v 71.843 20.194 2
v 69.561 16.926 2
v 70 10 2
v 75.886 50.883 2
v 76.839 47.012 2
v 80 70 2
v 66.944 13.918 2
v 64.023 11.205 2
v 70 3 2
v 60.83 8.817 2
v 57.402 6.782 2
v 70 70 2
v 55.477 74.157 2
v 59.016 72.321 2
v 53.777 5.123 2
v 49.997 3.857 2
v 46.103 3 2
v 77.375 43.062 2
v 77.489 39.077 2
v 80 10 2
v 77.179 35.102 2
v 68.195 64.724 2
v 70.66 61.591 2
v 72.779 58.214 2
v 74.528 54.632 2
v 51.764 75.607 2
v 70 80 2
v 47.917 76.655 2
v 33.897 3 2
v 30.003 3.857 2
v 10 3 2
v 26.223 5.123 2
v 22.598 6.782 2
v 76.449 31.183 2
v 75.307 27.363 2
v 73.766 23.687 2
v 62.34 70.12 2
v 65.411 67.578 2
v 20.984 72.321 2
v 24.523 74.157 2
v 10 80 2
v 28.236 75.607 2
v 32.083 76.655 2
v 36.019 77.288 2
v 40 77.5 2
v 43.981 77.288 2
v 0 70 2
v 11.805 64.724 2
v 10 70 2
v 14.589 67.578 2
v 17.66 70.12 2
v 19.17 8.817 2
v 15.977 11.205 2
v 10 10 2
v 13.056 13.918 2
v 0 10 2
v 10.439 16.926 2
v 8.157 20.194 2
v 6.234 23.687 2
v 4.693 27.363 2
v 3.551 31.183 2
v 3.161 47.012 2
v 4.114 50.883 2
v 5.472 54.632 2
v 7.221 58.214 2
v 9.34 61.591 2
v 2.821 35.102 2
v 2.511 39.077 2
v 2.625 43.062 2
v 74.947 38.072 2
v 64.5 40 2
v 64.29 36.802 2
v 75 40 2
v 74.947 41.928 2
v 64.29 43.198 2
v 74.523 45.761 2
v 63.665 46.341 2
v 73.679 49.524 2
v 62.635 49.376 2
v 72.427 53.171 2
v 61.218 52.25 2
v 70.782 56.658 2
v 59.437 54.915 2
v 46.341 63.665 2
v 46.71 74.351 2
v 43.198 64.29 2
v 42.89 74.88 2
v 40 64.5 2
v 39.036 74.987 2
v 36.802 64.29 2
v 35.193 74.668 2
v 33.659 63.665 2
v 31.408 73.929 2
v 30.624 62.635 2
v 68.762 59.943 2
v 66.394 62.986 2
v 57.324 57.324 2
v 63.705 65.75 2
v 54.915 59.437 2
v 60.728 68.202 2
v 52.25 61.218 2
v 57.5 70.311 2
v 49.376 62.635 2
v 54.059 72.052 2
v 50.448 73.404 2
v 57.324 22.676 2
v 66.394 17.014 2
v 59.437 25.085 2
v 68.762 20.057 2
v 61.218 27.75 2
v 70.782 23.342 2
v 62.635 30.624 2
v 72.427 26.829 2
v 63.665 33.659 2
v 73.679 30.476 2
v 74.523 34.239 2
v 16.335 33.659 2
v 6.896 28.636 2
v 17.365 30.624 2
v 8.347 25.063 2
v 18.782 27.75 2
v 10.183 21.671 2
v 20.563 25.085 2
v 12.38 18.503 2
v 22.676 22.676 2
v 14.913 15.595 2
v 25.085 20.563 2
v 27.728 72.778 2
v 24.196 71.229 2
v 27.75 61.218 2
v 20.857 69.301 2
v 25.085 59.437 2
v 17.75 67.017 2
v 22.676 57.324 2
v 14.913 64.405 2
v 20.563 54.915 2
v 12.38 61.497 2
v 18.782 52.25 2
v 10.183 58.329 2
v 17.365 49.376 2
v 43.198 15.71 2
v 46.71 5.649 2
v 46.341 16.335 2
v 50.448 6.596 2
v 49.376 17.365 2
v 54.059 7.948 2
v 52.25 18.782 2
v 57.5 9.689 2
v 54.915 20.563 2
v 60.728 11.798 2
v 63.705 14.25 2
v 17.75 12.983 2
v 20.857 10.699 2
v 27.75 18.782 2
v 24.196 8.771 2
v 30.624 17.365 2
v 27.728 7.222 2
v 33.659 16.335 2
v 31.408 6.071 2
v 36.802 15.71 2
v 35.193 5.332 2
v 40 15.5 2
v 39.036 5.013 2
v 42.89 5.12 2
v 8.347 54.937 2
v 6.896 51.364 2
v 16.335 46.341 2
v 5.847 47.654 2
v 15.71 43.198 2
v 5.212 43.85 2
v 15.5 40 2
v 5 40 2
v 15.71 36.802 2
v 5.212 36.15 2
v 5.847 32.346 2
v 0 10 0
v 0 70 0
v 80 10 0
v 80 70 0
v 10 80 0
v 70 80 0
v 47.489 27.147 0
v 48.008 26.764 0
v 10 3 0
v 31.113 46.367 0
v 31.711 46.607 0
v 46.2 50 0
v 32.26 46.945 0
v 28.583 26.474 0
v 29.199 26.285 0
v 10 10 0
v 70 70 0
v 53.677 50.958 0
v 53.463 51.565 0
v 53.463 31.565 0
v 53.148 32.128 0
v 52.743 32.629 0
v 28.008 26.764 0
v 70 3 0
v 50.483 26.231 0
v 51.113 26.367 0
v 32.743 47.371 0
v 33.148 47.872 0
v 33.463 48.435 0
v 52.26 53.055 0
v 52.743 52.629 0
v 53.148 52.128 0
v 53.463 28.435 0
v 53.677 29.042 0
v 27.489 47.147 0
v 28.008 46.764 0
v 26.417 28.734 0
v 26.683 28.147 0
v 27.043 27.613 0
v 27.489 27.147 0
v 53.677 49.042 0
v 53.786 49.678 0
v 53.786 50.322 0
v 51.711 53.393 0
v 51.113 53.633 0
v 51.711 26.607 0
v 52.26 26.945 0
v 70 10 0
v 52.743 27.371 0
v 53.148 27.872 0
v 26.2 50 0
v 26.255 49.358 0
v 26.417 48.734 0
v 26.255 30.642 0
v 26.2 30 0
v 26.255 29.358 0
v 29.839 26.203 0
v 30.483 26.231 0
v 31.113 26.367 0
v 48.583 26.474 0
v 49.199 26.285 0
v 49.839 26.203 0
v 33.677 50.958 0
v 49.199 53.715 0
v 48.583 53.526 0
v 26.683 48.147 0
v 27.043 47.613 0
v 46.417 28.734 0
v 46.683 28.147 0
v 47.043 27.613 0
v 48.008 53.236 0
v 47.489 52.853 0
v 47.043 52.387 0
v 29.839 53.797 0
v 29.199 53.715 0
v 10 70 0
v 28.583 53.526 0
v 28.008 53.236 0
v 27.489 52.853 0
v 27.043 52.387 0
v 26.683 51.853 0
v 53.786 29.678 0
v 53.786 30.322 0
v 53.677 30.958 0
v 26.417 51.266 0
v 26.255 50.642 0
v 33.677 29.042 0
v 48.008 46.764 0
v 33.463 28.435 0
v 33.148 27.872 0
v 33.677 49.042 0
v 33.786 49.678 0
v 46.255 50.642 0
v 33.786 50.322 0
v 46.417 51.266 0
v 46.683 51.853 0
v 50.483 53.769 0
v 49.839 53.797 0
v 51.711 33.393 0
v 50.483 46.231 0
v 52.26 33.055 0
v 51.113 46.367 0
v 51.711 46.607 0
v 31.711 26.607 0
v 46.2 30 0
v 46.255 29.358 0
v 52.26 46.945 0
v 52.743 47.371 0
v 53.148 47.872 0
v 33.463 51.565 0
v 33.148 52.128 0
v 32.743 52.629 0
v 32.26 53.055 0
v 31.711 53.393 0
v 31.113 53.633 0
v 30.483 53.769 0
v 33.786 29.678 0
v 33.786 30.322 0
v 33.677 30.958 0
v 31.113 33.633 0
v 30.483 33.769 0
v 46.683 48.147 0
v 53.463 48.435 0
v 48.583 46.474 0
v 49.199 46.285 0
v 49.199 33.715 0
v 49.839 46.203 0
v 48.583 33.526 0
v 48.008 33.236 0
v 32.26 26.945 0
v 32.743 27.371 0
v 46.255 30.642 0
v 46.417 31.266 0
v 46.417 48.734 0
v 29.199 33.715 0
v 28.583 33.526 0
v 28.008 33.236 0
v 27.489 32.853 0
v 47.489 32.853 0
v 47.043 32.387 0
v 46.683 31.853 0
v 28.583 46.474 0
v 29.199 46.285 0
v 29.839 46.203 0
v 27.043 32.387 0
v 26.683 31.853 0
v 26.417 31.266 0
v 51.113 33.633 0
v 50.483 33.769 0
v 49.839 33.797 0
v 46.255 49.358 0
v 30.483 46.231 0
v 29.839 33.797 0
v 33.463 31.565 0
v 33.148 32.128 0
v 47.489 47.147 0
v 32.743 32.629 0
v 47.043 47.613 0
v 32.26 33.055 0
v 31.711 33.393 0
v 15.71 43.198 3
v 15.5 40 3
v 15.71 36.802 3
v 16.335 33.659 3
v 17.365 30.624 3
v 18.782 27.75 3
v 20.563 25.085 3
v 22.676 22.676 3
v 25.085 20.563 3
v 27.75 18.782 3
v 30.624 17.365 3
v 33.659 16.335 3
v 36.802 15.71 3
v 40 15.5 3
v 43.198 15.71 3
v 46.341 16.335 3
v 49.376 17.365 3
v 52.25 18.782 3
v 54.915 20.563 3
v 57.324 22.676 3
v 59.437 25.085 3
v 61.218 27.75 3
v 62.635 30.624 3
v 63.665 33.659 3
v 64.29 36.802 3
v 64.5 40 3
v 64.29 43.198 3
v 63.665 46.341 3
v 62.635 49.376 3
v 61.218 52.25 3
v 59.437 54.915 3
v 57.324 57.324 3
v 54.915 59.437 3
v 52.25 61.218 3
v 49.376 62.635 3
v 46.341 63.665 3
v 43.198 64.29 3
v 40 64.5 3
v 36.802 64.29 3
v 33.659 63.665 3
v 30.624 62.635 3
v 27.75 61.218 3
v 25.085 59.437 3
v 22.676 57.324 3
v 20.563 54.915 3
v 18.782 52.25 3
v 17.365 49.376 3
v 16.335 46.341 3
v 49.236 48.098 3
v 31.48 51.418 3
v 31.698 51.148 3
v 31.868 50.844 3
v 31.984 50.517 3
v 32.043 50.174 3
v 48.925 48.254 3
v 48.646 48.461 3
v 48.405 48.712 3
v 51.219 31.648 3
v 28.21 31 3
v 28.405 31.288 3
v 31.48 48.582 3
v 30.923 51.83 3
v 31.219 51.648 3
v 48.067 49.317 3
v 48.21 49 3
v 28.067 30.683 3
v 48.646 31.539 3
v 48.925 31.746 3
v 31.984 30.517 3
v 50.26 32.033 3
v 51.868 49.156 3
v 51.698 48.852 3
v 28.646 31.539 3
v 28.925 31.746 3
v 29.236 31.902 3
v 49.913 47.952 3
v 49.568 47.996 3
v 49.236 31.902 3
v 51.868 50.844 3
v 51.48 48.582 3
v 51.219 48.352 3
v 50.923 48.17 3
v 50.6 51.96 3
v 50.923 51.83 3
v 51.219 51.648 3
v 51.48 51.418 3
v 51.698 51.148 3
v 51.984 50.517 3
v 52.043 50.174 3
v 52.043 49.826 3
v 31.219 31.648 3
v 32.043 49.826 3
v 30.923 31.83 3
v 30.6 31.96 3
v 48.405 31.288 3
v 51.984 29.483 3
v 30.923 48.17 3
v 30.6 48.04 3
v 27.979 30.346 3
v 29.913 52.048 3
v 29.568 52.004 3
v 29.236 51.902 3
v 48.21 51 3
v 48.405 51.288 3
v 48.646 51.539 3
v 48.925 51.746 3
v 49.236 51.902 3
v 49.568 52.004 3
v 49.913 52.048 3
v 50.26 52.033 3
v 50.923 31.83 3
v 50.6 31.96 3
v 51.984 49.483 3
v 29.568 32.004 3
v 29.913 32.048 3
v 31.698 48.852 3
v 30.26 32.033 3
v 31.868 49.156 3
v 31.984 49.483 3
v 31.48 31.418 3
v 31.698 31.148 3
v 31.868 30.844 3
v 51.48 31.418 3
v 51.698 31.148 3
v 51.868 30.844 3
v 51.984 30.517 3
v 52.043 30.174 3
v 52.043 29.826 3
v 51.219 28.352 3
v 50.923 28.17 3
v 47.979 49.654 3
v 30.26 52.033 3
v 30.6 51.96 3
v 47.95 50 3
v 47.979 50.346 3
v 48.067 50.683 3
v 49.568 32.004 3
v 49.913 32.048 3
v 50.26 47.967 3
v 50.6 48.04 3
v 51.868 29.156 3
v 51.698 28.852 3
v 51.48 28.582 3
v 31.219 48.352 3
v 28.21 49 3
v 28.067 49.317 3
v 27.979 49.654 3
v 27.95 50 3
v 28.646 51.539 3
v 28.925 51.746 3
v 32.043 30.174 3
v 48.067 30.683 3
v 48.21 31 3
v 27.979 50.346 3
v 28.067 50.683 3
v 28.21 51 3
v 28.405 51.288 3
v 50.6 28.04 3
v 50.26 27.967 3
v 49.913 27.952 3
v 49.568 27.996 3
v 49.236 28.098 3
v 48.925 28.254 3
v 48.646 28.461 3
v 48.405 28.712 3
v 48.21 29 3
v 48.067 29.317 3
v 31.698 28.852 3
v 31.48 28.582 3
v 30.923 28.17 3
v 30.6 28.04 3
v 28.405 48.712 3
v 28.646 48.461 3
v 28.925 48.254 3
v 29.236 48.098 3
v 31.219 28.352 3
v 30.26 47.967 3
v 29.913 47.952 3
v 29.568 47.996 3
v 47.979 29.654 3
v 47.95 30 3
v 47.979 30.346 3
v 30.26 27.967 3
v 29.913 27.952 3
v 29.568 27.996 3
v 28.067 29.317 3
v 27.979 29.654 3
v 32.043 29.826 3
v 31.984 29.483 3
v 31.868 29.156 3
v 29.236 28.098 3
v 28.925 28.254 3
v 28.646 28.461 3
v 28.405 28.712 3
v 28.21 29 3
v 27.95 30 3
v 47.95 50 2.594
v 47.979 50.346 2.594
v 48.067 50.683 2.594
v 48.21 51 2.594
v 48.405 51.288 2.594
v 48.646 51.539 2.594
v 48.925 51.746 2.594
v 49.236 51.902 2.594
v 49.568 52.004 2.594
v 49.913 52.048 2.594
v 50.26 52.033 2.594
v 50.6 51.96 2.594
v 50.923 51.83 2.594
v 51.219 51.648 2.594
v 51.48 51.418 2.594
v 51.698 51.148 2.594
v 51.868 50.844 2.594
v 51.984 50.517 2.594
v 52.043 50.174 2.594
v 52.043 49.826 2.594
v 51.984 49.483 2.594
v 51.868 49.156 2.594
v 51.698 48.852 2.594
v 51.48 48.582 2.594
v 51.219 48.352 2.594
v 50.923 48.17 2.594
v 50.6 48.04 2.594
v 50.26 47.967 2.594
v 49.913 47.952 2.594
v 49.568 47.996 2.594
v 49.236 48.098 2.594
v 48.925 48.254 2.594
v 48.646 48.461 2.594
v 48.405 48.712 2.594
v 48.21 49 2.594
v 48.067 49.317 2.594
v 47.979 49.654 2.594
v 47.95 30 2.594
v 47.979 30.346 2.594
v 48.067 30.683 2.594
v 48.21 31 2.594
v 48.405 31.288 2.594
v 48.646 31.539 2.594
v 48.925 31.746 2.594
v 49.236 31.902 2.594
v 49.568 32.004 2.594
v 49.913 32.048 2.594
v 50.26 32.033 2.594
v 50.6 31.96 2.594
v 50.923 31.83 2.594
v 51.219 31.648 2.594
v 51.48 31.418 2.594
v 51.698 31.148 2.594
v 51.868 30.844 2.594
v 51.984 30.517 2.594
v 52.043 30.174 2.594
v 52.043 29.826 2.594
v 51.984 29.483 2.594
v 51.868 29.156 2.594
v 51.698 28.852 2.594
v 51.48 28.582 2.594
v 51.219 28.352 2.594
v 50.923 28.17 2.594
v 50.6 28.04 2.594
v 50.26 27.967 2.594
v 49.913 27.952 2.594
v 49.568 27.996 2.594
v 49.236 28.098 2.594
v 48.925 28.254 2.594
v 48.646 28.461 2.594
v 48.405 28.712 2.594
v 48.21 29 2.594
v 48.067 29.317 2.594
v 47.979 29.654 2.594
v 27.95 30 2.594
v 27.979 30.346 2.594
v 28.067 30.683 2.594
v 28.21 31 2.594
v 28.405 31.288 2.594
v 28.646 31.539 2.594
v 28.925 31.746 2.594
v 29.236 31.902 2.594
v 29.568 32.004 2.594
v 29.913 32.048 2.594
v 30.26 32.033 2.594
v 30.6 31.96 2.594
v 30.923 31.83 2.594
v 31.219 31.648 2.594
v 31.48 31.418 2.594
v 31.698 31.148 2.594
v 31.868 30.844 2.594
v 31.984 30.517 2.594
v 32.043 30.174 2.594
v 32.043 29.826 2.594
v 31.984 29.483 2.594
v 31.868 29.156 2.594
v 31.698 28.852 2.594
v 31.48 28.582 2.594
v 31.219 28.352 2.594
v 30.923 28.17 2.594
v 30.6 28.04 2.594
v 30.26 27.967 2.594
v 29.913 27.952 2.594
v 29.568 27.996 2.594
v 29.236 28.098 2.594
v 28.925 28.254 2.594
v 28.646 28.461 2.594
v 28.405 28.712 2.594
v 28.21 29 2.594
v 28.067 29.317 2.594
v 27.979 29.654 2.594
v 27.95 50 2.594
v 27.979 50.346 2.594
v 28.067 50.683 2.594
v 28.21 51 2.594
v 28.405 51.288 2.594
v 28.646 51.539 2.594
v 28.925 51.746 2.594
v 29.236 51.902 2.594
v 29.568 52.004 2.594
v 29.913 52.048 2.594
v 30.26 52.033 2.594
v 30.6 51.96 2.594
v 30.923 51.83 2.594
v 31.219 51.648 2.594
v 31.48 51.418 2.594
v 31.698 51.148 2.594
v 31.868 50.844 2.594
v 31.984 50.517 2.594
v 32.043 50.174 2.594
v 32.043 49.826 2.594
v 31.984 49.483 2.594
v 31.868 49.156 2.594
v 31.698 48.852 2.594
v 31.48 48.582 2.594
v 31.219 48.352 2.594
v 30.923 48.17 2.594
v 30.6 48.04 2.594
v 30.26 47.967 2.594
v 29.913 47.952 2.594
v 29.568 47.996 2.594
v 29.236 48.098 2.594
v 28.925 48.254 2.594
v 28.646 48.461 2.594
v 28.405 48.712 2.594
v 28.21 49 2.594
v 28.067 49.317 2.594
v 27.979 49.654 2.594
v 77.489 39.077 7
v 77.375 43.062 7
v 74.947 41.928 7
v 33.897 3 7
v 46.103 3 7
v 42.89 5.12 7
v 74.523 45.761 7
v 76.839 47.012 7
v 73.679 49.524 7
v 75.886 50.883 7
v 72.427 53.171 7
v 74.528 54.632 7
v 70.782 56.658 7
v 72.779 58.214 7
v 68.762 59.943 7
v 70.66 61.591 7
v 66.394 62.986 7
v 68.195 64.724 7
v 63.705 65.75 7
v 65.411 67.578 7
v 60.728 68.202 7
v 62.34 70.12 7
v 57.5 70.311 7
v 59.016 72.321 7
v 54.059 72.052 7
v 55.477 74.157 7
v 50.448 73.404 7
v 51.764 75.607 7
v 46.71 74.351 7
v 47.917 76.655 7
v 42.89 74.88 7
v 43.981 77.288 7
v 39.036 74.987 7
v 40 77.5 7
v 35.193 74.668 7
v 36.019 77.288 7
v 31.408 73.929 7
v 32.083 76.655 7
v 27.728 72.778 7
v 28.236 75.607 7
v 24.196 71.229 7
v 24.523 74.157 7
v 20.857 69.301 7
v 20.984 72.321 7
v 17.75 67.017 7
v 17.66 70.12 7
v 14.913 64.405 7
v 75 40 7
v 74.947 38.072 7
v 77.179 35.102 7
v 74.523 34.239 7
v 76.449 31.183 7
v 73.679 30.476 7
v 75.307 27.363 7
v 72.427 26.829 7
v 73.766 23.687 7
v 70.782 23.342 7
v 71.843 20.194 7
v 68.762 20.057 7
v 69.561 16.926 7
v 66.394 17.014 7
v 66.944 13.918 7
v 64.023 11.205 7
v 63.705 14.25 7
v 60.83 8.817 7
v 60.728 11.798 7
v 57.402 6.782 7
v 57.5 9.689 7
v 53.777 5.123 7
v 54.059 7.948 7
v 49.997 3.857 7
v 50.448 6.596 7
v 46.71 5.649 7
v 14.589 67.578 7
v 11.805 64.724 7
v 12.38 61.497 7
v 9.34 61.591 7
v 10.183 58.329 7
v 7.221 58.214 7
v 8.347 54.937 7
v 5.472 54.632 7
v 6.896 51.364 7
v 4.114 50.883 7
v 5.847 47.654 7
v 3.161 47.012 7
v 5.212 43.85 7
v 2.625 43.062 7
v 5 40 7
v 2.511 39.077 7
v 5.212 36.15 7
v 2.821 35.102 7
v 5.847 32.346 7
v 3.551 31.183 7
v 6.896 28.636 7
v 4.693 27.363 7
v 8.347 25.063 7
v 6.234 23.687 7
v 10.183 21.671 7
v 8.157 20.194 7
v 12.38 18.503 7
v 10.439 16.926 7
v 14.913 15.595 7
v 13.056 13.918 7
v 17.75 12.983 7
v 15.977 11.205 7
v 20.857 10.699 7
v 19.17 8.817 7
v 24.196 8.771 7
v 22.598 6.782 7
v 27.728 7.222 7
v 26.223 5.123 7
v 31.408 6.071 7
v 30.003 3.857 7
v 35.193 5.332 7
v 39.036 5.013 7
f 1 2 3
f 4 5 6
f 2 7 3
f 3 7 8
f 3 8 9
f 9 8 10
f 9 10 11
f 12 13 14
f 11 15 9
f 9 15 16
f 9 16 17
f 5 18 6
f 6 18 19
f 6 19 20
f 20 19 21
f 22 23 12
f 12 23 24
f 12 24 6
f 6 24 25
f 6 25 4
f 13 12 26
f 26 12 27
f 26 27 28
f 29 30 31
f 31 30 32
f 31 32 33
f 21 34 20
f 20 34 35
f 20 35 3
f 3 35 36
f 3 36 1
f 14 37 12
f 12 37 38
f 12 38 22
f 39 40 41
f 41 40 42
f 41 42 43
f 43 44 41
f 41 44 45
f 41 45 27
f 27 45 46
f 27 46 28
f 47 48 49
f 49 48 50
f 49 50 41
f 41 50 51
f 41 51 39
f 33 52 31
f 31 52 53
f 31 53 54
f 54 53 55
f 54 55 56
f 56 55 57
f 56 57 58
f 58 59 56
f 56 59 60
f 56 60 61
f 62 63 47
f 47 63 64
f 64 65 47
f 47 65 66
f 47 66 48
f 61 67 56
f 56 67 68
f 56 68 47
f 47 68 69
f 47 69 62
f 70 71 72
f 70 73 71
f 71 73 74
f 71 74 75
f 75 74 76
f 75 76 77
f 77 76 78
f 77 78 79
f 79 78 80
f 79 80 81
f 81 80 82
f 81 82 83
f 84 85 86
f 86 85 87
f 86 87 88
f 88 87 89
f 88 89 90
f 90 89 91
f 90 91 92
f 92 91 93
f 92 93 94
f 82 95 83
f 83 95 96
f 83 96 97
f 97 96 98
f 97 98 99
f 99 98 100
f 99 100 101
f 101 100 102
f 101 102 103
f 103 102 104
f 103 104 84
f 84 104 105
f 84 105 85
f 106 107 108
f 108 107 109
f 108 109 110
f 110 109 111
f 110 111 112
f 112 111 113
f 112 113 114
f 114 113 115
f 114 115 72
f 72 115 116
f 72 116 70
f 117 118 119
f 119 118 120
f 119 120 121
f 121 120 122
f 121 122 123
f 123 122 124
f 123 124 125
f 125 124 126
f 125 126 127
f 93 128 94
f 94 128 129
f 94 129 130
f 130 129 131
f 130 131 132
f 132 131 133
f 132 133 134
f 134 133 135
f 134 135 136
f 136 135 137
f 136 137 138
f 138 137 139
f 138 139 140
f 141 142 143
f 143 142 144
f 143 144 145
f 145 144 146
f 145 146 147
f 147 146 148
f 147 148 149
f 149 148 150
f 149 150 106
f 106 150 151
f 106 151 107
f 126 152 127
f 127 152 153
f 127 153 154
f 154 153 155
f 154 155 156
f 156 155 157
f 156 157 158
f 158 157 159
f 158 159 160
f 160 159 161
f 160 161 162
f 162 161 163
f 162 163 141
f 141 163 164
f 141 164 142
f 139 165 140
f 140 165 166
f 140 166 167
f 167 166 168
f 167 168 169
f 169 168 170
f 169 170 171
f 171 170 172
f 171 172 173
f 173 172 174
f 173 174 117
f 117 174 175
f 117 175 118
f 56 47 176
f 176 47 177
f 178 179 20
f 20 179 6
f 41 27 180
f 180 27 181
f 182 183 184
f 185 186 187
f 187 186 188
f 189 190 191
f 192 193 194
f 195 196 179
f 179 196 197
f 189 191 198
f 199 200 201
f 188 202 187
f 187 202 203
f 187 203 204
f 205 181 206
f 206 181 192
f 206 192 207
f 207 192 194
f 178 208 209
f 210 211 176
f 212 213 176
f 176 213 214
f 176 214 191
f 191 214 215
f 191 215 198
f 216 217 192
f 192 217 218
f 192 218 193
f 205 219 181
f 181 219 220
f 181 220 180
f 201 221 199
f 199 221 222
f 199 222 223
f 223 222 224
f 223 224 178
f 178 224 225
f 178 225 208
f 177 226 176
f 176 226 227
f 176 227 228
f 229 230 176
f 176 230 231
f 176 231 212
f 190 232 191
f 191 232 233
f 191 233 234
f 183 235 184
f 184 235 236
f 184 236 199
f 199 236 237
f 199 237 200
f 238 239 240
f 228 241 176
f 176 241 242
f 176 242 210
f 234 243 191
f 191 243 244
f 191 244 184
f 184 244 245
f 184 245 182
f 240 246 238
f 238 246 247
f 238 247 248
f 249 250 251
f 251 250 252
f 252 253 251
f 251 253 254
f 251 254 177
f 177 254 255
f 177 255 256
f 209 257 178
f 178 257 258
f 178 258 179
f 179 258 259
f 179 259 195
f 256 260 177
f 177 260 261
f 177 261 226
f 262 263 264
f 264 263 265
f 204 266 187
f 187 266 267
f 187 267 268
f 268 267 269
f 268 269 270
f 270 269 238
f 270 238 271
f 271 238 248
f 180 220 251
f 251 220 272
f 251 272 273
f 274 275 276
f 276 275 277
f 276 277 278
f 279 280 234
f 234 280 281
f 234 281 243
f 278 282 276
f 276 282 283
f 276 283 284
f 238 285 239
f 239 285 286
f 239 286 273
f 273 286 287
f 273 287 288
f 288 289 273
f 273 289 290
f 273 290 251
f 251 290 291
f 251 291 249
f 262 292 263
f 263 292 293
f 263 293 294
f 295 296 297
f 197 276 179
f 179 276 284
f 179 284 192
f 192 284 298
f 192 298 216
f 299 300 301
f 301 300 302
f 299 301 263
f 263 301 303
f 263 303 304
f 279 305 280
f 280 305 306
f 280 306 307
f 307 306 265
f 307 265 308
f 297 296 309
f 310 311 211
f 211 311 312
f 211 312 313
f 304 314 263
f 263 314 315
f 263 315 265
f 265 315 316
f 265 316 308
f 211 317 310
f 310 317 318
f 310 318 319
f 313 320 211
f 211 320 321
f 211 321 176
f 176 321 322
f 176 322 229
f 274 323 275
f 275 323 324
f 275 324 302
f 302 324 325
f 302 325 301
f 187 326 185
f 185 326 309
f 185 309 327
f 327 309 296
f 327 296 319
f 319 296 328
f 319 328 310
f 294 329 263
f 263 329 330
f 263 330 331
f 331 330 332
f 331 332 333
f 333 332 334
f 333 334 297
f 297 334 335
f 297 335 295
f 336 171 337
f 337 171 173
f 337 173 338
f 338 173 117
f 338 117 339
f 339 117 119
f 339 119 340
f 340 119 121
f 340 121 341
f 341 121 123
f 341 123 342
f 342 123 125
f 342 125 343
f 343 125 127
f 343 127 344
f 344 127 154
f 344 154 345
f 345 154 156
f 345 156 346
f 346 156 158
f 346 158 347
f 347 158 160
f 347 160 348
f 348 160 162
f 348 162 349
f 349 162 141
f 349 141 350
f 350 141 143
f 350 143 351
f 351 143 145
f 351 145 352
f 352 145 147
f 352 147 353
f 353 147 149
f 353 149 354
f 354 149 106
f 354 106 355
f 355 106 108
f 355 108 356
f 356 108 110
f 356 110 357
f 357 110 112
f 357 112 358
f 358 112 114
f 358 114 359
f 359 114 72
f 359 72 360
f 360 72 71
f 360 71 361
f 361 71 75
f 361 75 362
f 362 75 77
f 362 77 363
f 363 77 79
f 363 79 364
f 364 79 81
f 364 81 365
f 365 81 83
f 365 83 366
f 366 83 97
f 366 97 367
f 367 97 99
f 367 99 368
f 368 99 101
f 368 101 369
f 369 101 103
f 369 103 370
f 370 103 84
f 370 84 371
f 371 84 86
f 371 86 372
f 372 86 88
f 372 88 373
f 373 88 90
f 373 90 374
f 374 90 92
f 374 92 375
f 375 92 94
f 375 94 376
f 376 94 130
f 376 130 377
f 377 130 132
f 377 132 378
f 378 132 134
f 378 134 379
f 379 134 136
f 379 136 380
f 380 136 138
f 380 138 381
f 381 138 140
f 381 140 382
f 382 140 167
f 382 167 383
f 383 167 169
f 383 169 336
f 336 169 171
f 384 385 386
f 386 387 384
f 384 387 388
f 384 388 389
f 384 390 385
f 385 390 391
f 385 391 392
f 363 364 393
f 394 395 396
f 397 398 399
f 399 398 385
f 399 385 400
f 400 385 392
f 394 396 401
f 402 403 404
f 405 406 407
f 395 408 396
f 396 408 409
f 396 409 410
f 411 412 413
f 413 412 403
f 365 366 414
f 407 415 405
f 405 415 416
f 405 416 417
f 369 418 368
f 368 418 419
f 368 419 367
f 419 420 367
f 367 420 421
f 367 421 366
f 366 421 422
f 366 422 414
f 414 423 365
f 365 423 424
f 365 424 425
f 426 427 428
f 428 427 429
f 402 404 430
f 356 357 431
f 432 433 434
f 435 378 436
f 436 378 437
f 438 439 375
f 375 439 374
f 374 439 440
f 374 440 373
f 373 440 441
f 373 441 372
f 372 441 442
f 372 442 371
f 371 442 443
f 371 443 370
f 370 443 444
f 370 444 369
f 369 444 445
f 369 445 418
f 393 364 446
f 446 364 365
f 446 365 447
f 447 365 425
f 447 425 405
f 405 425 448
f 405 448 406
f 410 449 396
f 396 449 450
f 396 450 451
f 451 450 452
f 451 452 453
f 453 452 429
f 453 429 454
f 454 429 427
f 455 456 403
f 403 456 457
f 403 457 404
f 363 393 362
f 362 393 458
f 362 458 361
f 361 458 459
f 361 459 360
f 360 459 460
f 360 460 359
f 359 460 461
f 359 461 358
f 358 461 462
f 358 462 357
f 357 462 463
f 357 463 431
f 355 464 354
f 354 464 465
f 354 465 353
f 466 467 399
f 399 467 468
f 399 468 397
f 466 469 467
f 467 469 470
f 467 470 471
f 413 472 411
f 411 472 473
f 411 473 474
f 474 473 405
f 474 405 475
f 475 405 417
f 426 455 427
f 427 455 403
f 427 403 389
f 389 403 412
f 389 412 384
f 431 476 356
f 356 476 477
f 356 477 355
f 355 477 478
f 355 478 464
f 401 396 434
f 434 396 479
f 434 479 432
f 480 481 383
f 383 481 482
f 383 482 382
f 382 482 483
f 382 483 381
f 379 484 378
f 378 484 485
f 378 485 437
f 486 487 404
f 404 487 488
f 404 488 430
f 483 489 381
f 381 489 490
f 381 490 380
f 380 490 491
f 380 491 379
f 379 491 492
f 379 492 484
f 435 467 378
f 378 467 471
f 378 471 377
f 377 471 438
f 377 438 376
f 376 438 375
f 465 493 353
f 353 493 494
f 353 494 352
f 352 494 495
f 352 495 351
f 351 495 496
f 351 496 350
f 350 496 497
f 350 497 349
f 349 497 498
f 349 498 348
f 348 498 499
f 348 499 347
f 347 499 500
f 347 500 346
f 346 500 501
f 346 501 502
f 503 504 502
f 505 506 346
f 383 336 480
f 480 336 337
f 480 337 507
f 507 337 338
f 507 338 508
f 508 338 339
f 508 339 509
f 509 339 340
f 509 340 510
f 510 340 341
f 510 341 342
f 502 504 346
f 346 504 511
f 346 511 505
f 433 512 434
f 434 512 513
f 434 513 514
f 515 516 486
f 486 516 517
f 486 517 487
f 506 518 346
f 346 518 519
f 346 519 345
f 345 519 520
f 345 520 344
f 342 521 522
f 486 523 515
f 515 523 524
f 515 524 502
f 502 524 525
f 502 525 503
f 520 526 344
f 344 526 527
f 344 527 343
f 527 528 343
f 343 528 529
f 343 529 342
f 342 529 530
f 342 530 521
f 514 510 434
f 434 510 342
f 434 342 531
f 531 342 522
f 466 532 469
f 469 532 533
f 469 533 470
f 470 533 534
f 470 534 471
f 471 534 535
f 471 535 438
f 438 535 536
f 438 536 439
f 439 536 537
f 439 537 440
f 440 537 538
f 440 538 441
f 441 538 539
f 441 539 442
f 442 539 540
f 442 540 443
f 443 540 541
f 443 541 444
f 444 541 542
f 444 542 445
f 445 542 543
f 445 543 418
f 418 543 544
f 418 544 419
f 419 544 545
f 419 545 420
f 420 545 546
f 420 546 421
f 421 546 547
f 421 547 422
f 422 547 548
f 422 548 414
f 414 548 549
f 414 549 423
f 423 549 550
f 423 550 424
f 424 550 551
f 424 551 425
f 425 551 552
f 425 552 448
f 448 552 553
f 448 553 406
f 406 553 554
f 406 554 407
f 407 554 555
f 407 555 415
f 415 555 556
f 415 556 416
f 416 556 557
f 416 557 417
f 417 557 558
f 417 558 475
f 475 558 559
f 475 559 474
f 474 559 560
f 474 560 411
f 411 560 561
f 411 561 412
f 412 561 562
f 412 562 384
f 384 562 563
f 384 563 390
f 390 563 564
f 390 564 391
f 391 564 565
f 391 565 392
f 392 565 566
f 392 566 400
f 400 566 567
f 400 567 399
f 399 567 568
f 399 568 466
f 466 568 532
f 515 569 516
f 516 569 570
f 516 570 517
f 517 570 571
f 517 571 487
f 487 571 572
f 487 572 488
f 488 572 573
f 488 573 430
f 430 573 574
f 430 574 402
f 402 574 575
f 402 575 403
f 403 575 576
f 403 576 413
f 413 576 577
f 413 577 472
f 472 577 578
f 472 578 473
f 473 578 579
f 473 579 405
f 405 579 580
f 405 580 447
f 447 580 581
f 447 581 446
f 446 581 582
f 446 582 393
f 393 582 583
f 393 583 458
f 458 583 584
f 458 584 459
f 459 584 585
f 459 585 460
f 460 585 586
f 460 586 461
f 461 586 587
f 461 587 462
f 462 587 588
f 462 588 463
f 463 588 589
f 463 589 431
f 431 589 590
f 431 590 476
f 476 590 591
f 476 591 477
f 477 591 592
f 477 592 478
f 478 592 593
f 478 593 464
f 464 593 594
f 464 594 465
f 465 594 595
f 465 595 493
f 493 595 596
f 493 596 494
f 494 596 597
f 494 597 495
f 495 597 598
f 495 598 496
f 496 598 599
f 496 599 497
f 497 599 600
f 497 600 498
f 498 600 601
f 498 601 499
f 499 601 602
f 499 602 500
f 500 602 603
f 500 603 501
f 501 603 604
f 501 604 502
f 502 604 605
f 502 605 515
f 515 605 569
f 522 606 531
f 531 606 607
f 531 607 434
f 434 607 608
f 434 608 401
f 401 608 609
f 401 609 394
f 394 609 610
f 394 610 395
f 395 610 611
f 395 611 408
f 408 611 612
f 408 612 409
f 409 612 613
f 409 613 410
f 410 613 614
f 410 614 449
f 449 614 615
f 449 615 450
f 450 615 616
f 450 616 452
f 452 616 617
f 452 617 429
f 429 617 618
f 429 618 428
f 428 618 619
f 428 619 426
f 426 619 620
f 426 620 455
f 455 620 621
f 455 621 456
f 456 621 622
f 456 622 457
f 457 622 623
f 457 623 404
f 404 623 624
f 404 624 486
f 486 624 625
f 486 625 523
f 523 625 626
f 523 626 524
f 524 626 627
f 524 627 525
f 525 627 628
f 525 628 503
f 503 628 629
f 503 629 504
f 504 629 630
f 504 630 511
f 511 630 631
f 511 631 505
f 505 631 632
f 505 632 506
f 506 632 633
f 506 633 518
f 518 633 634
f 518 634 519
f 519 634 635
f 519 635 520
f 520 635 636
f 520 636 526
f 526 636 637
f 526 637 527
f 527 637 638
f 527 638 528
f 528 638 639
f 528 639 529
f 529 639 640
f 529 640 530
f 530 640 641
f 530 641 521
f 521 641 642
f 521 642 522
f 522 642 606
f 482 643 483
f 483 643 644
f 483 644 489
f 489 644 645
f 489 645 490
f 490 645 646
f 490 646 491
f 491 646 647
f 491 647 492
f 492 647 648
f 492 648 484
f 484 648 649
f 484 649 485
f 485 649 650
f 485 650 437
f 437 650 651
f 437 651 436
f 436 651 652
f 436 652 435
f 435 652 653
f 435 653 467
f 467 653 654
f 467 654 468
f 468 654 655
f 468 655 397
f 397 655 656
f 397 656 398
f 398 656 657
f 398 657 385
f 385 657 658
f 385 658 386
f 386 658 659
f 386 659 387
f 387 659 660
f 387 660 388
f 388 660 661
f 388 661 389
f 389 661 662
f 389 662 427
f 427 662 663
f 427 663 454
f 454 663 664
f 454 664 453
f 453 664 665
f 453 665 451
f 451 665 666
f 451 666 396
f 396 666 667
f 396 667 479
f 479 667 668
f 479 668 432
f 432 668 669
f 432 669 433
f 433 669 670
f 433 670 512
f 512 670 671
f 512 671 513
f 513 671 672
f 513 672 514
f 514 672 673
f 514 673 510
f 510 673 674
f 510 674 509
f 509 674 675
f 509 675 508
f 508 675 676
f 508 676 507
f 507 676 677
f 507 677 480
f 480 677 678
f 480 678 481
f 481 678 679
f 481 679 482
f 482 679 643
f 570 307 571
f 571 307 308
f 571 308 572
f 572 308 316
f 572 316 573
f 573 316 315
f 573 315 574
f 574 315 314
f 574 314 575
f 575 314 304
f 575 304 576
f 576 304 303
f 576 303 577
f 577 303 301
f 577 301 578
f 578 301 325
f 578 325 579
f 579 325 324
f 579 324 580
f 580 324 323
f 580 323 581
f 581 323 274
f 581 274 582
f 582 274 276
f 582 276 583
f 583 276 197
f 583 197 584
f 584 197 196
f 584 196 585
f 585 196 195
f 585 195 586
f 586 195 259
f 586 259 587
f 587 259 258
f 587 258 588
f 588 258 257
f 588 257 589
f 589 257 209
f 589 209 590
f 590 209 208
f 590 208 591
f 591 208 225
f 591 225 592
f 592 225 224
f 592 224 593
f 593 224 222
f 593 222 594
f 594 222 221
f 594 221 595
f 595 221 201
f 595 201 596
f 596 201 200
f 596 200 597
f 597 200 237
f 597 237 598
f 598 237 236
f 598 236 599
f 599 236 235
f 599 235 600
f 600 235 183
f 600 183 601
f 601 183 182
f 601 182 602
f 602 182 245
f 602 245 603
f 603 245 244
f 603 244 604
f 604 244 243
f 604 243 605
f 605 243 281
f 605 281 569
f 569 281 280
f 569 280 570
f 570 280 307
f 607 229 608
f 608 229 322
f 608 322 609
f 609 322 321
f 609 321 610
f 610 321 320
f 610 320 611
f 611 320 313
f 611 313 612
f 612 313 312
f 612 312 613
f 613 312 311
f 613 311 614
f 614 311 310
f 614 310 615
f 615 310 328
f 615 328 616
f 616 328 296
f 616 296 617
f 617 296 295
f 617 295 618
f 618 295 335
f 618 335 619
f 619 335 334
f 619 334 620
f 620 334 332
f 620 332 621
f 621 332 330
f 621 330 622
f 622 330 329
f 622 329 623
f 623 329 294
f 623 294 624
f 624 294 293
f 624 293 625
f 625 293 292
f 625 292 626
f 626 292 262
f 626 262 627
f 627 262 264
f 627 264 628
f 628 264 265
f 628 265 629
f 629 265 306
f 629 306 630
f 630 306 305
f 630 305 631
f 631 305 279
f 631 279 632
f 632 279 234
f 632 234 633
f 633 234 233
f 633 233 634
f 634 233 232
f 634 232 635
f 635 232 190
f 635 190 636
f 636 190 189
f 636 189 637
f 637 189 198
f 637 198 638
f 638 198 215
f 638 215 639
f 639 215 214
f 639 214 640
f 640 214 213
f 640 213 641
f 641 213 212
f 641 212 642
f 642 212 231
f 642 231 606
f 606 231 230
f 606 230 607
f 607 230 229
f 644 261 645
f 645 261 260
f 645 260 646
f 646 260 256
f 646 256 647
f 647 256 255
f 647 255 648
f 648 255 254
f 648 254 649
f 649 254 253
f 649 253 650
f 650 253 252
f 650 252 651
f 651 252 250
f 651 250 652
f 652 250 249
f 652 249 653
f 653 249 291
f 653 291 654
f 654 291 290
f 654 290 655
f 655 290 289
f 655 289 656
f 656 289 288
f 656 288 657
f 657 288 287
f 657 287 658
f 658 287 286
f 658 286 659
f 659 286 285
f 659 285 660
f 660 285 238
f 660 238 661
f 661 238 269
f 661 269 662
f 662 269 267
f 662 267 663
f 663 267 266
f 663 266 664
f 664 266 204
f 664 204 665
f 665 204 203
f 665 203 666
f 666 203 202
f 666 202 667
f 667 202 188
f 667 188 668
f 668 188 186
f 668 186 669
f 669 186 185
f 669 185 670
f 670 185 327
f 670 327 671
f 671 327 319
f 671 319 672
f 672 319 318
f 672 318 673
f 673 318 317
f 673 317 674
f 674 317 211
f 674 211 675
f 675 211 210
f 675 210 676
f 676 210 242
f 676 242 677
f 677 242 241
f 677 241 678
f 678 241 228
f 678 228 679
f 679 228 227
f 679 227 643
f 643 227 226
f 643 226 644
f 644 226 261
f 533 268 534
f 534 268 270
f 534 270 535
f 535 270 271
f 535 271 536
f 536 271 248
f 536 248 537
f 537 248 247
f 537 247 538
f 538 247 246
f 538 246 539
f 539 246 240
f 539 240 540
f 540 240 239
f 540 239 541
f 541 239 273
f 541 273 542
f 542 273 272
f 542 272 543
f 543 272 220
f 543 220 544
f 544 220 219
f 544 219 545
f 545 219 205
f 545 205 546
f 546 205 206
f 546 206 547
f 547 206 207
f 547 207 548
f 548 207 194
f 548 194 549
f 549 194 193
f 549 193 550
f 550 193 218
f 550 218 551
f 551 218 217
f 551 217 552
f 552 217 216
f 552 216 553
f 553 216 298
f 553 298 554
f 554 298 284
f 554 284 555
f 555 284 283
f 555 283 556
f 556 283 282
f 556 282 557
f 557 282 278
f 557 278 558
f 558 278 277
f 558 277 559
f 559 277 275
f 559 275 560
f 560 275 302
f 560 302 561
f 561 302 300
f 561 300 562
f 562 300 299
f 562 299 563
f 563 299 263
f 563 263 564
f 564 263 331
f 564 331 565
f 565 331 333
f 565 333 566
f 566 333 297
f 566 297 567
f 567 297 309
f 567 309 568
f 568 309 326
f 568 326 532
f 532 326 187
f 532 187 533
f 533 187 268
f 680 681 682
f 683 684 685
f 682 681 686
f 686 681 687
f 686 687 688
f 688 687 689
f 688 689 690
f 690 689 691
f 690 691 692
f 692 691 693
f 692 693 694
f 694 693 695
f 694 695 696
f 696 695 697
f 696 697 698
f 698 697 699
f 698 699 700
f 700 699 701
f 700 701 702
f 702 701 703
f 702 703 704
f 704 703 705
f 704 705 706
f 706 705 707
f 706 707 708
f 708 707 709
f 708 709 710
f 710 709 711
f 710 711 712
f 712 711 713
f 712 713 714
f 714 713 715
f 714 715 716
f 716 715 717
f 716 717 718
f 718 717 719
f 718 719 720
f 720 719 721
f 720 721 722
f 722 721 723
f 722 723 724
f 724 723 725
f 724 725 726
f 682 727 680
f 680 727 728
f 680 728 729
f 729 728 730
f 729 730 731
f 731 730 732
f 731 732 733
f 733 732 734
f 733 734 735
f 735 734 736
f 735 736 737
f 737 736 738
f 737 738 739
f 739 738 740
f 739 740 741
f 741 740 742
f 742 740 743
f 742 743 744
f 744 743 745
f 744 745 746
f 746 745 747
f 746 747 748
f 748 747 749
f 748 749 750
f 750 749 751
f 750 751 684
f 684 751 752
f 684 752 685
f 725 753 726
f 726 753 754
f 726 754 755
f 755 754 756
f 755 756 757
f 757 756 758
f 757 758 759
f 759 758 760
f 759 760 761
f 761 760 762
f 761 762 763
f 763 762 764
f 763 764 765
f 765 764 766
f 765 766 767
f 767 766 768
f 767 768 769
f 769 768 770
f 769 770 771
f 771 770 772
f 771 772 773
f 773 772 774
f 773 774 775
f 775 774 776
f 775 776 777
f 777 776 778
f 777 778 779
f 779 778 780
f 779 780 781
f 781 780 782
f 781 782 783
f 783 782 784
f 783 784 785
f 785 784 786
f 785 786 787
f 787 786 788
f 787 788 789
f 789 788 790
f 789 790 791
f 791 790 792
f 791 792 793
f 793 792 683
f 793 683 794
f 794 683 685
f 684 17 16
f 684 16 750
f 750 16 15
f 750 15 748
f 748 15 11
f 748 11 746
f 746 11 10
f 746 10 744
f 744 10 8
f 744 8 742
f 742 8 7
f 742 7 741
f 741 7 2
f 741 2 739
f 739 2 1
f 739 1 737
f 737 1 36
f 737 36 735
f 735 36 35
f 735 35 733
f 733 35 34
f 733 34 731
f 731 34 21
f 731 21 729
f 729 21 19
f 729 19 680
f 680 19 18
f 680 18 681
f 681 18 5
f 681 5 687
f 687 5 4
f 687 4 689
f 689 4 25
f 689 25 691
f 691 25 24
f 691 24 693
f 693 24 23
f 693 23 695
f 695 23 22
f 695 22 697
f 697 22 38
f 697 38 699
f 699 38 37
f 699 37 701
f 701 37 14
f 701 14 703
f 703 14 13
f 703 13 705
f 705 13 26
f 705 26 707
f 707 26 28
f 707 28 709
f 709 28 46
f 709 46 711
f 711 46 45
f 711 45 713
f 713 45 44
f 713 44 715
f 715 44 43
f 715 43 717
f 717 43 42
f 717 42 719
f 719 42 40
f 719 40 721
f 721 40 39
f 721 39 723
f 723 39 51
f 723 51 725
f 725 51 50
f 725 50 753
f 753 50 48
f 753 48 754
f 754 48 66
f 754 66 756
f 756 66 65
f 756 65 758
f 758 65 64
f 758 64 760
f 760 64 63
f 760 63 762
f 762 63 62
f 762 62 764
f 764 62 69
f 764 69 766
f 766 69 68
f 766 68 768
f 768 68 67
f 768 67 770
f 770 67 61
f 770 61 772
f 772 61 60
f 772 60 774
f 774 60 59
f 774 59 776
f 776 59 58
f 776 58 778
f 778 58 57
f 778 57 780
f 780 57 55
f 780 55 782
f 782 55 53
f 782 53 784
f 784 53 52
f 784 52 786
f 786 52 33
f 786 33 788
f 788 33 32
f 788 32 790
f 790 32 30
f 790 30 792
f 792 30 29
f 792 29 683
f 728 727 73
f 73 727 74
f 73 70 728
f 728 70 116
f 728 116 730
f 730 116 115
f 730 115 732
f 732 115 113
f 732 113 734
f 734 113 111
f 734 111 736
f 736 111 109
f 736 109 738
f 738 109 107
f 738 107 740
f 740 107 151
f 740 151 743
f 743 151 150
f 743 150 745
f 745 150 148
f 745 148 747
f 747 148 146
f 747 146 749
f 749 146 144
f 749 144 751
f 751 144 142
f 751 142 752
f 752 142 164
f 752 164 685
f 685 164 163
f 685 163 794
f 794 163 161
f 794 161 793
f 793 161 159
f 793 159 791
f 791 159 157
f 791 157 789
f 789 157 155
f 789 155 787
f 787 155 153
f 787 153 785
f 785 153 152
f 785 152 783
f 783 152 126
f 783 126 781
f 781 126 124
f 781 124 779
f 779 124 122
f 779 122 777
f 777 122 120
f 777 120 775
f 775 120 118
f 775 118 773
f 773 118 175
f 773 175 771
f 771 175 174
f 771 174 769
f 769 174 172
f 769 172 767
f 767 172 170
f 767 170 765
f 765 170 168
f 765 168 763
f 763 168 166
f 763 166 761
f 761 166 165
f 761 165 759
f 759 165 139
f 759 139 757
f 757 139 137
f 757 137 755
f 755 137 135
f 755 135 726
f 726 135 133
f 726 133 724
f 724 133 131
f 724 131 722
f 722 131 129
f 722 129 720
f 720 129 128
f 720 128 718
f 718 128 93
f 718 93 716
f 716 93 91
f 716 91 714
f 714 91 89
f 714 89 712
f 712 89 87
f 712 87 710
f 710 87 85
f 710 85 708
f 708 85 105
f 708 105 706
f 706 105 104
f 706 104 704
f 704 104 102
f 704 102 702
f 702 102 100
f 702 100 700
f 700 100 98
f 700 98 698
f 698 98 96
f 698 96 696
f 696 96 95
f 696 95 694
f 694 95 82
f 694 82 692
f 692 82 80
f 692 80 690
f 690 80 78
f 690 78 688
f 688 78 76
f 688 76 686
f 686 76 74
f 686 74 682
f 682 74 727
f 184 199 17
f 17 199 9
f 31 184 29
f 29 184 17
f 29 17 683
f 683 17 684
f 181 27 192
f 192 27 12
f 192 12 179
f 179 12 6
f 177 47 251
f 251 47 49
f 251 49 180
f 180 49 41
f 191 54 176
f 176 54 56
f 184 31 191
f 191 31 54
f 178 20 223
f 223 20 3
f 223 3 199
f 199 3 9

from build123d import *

# Parameters (mm, degrees)
ESQUISSE1_W             = 80
ESQUISSE1_H             = 80
BOSS_EXTRU_1_DEPTH      = 2
ESQUISSE2_R             = 24.5
BOSS_EXTRU_2_DEPTH      = 1
ESQUISSE3_R             = 2.05
ENL_V_MAT_EXTRU_1_DEPTH = 4
CHANFREIN1_SIZE         = 1.75
CHANFREIN1_SIZE2        = 2.594481695
ESQUISSE4_R             = 37.5
ESQUISSE4_R_2           = 35
BOSS_EXTRU_3_DEPTH      = 5
ESQUISSE5_W             = 80
ESQUISSE5_H             = 3
ENL_V_MAT_EXTRU_2_DEPTH = 8
ESQUISSE6_W             = 10
ESQUISSE6_H             = 10
ESQUISSE6_H_2           = 7
ENL_V_MAT_EXTRU_3_DEPTH = 8


with BuildPart() as part:
    # Esquisse1 → Boss.-Extru.1 (new body)
    with BuildSketch(Plane.XY):
        with Locations((40, 40)):
            Rectangle(ESQUISSE1_W, ESQUISSE1_H)
    extrude(amount=BOSS_EXTRU_1_DEPTH)

    # Esquisse2 → Boss.-Extru.2 (add)
    with BuildSketch(Plane.XY.offset(2)):
        with Locations((40, 40)):
            Circle(ESQUISSE2_R)
    extrude(amount=BOSS_EXTRU_2_DEPTH)

    # Esquisse3 → Enlèv. mat.-Extru.1 (cut, through all)
    with BuildSketch(Plane(origin=(0, 0, 0), x_dir=(-1, 0, 0), z_dir=(0, 0, -1))):
        with Locations((-50, 50)):
            Circle(ESQUISSE3_R)
        with Locations((-50, 30)):
            Circle(ESQUISSE3_R)
        with Locations((-30, 30)):
            Circle(ESQUISSE3_R)
        with Locations((-30, 50)):
            Circle(ESQUISSE3_R)
    extrude(amount=-ENL_V_MAT_EXTRU_1_DEPTH, mode=Mode.SUBTRACT)

    # Chanfrein1
    chanfrein1_edges = [part.edges().sort_by_distance(p)[0] for p in [
        (52.05, 50, 0),
        (52.05, 30, 0),
        (32.05, 30, 0),
        (32.05, 50, 0),
    ]]
    chanfrein1_side = [part.faces().sort_by_distance(p)[0] for p in [
        (40, 40, 0),
    ]]
    chamfer(chanfrein1_edges, length=CHANFREIN1_SIZE, length2=CHANFREIN1_SIZE2, reference=chanfrein1_side[0])

    # Esquisse4 → Boss.-Extru.3 (add)
    with BuildSketch(Plane.XY.offset(2)):
        with Locations((40, 40)):
            Circle(ESQUISSE4_R)
        with Locations((40, 40)):
            Circle(ESQUISSE4_R_2, mode=Mode.SUBTRACT)
    extrude(amount=BOSS_EXTRU_3_DEPTH)

    # Esquisse5 → Enlèv. mat.-Extru.2 (cut, through all)
    with BuildSketch(Plane(origin=(0, 0, 0), x_dir=(-1, 0, 0), z_dir=(0, 0, -1))):
        with Locations((-40, 1.5)):
            Rectangle(ESQUISSE5_W, ESQUISSE5_H)
    extrude(amount=-ENL_V_MAT_EXTRU_2_DEPTH, mode=Mode.SUBTRACT)

    # Esquisse6 → Enlèv. mat.-Extru.3 (cut, through all)
    with BuildSketch(Plane(origin=(0, 0, 0), x_dir=(-1, 0, 0), z_dir=(0, 0, -1))):
        with Locations((-75, 75)):
            Rectangle(ESQUISSE6_W, ESQUISSE6_H)
        with Locations((-5, 75)):
            Rectangle(ESQUISSE6_W, ESQUISSE6_H)
        with Locations((-5, 6.5)):
            Rectangle(ESQUISSE6_W, ESQUISSE6_H_2)
        with Locations((-75, 6.5)):
            Rectangle(ESQUISSE6_W, ESQUISSE6_H_2)
    extrude(amount=-ENL_V_MAT_EXTRU_3_DEPTH, mode=Mode.SUBTRACT)


solid = part.part
